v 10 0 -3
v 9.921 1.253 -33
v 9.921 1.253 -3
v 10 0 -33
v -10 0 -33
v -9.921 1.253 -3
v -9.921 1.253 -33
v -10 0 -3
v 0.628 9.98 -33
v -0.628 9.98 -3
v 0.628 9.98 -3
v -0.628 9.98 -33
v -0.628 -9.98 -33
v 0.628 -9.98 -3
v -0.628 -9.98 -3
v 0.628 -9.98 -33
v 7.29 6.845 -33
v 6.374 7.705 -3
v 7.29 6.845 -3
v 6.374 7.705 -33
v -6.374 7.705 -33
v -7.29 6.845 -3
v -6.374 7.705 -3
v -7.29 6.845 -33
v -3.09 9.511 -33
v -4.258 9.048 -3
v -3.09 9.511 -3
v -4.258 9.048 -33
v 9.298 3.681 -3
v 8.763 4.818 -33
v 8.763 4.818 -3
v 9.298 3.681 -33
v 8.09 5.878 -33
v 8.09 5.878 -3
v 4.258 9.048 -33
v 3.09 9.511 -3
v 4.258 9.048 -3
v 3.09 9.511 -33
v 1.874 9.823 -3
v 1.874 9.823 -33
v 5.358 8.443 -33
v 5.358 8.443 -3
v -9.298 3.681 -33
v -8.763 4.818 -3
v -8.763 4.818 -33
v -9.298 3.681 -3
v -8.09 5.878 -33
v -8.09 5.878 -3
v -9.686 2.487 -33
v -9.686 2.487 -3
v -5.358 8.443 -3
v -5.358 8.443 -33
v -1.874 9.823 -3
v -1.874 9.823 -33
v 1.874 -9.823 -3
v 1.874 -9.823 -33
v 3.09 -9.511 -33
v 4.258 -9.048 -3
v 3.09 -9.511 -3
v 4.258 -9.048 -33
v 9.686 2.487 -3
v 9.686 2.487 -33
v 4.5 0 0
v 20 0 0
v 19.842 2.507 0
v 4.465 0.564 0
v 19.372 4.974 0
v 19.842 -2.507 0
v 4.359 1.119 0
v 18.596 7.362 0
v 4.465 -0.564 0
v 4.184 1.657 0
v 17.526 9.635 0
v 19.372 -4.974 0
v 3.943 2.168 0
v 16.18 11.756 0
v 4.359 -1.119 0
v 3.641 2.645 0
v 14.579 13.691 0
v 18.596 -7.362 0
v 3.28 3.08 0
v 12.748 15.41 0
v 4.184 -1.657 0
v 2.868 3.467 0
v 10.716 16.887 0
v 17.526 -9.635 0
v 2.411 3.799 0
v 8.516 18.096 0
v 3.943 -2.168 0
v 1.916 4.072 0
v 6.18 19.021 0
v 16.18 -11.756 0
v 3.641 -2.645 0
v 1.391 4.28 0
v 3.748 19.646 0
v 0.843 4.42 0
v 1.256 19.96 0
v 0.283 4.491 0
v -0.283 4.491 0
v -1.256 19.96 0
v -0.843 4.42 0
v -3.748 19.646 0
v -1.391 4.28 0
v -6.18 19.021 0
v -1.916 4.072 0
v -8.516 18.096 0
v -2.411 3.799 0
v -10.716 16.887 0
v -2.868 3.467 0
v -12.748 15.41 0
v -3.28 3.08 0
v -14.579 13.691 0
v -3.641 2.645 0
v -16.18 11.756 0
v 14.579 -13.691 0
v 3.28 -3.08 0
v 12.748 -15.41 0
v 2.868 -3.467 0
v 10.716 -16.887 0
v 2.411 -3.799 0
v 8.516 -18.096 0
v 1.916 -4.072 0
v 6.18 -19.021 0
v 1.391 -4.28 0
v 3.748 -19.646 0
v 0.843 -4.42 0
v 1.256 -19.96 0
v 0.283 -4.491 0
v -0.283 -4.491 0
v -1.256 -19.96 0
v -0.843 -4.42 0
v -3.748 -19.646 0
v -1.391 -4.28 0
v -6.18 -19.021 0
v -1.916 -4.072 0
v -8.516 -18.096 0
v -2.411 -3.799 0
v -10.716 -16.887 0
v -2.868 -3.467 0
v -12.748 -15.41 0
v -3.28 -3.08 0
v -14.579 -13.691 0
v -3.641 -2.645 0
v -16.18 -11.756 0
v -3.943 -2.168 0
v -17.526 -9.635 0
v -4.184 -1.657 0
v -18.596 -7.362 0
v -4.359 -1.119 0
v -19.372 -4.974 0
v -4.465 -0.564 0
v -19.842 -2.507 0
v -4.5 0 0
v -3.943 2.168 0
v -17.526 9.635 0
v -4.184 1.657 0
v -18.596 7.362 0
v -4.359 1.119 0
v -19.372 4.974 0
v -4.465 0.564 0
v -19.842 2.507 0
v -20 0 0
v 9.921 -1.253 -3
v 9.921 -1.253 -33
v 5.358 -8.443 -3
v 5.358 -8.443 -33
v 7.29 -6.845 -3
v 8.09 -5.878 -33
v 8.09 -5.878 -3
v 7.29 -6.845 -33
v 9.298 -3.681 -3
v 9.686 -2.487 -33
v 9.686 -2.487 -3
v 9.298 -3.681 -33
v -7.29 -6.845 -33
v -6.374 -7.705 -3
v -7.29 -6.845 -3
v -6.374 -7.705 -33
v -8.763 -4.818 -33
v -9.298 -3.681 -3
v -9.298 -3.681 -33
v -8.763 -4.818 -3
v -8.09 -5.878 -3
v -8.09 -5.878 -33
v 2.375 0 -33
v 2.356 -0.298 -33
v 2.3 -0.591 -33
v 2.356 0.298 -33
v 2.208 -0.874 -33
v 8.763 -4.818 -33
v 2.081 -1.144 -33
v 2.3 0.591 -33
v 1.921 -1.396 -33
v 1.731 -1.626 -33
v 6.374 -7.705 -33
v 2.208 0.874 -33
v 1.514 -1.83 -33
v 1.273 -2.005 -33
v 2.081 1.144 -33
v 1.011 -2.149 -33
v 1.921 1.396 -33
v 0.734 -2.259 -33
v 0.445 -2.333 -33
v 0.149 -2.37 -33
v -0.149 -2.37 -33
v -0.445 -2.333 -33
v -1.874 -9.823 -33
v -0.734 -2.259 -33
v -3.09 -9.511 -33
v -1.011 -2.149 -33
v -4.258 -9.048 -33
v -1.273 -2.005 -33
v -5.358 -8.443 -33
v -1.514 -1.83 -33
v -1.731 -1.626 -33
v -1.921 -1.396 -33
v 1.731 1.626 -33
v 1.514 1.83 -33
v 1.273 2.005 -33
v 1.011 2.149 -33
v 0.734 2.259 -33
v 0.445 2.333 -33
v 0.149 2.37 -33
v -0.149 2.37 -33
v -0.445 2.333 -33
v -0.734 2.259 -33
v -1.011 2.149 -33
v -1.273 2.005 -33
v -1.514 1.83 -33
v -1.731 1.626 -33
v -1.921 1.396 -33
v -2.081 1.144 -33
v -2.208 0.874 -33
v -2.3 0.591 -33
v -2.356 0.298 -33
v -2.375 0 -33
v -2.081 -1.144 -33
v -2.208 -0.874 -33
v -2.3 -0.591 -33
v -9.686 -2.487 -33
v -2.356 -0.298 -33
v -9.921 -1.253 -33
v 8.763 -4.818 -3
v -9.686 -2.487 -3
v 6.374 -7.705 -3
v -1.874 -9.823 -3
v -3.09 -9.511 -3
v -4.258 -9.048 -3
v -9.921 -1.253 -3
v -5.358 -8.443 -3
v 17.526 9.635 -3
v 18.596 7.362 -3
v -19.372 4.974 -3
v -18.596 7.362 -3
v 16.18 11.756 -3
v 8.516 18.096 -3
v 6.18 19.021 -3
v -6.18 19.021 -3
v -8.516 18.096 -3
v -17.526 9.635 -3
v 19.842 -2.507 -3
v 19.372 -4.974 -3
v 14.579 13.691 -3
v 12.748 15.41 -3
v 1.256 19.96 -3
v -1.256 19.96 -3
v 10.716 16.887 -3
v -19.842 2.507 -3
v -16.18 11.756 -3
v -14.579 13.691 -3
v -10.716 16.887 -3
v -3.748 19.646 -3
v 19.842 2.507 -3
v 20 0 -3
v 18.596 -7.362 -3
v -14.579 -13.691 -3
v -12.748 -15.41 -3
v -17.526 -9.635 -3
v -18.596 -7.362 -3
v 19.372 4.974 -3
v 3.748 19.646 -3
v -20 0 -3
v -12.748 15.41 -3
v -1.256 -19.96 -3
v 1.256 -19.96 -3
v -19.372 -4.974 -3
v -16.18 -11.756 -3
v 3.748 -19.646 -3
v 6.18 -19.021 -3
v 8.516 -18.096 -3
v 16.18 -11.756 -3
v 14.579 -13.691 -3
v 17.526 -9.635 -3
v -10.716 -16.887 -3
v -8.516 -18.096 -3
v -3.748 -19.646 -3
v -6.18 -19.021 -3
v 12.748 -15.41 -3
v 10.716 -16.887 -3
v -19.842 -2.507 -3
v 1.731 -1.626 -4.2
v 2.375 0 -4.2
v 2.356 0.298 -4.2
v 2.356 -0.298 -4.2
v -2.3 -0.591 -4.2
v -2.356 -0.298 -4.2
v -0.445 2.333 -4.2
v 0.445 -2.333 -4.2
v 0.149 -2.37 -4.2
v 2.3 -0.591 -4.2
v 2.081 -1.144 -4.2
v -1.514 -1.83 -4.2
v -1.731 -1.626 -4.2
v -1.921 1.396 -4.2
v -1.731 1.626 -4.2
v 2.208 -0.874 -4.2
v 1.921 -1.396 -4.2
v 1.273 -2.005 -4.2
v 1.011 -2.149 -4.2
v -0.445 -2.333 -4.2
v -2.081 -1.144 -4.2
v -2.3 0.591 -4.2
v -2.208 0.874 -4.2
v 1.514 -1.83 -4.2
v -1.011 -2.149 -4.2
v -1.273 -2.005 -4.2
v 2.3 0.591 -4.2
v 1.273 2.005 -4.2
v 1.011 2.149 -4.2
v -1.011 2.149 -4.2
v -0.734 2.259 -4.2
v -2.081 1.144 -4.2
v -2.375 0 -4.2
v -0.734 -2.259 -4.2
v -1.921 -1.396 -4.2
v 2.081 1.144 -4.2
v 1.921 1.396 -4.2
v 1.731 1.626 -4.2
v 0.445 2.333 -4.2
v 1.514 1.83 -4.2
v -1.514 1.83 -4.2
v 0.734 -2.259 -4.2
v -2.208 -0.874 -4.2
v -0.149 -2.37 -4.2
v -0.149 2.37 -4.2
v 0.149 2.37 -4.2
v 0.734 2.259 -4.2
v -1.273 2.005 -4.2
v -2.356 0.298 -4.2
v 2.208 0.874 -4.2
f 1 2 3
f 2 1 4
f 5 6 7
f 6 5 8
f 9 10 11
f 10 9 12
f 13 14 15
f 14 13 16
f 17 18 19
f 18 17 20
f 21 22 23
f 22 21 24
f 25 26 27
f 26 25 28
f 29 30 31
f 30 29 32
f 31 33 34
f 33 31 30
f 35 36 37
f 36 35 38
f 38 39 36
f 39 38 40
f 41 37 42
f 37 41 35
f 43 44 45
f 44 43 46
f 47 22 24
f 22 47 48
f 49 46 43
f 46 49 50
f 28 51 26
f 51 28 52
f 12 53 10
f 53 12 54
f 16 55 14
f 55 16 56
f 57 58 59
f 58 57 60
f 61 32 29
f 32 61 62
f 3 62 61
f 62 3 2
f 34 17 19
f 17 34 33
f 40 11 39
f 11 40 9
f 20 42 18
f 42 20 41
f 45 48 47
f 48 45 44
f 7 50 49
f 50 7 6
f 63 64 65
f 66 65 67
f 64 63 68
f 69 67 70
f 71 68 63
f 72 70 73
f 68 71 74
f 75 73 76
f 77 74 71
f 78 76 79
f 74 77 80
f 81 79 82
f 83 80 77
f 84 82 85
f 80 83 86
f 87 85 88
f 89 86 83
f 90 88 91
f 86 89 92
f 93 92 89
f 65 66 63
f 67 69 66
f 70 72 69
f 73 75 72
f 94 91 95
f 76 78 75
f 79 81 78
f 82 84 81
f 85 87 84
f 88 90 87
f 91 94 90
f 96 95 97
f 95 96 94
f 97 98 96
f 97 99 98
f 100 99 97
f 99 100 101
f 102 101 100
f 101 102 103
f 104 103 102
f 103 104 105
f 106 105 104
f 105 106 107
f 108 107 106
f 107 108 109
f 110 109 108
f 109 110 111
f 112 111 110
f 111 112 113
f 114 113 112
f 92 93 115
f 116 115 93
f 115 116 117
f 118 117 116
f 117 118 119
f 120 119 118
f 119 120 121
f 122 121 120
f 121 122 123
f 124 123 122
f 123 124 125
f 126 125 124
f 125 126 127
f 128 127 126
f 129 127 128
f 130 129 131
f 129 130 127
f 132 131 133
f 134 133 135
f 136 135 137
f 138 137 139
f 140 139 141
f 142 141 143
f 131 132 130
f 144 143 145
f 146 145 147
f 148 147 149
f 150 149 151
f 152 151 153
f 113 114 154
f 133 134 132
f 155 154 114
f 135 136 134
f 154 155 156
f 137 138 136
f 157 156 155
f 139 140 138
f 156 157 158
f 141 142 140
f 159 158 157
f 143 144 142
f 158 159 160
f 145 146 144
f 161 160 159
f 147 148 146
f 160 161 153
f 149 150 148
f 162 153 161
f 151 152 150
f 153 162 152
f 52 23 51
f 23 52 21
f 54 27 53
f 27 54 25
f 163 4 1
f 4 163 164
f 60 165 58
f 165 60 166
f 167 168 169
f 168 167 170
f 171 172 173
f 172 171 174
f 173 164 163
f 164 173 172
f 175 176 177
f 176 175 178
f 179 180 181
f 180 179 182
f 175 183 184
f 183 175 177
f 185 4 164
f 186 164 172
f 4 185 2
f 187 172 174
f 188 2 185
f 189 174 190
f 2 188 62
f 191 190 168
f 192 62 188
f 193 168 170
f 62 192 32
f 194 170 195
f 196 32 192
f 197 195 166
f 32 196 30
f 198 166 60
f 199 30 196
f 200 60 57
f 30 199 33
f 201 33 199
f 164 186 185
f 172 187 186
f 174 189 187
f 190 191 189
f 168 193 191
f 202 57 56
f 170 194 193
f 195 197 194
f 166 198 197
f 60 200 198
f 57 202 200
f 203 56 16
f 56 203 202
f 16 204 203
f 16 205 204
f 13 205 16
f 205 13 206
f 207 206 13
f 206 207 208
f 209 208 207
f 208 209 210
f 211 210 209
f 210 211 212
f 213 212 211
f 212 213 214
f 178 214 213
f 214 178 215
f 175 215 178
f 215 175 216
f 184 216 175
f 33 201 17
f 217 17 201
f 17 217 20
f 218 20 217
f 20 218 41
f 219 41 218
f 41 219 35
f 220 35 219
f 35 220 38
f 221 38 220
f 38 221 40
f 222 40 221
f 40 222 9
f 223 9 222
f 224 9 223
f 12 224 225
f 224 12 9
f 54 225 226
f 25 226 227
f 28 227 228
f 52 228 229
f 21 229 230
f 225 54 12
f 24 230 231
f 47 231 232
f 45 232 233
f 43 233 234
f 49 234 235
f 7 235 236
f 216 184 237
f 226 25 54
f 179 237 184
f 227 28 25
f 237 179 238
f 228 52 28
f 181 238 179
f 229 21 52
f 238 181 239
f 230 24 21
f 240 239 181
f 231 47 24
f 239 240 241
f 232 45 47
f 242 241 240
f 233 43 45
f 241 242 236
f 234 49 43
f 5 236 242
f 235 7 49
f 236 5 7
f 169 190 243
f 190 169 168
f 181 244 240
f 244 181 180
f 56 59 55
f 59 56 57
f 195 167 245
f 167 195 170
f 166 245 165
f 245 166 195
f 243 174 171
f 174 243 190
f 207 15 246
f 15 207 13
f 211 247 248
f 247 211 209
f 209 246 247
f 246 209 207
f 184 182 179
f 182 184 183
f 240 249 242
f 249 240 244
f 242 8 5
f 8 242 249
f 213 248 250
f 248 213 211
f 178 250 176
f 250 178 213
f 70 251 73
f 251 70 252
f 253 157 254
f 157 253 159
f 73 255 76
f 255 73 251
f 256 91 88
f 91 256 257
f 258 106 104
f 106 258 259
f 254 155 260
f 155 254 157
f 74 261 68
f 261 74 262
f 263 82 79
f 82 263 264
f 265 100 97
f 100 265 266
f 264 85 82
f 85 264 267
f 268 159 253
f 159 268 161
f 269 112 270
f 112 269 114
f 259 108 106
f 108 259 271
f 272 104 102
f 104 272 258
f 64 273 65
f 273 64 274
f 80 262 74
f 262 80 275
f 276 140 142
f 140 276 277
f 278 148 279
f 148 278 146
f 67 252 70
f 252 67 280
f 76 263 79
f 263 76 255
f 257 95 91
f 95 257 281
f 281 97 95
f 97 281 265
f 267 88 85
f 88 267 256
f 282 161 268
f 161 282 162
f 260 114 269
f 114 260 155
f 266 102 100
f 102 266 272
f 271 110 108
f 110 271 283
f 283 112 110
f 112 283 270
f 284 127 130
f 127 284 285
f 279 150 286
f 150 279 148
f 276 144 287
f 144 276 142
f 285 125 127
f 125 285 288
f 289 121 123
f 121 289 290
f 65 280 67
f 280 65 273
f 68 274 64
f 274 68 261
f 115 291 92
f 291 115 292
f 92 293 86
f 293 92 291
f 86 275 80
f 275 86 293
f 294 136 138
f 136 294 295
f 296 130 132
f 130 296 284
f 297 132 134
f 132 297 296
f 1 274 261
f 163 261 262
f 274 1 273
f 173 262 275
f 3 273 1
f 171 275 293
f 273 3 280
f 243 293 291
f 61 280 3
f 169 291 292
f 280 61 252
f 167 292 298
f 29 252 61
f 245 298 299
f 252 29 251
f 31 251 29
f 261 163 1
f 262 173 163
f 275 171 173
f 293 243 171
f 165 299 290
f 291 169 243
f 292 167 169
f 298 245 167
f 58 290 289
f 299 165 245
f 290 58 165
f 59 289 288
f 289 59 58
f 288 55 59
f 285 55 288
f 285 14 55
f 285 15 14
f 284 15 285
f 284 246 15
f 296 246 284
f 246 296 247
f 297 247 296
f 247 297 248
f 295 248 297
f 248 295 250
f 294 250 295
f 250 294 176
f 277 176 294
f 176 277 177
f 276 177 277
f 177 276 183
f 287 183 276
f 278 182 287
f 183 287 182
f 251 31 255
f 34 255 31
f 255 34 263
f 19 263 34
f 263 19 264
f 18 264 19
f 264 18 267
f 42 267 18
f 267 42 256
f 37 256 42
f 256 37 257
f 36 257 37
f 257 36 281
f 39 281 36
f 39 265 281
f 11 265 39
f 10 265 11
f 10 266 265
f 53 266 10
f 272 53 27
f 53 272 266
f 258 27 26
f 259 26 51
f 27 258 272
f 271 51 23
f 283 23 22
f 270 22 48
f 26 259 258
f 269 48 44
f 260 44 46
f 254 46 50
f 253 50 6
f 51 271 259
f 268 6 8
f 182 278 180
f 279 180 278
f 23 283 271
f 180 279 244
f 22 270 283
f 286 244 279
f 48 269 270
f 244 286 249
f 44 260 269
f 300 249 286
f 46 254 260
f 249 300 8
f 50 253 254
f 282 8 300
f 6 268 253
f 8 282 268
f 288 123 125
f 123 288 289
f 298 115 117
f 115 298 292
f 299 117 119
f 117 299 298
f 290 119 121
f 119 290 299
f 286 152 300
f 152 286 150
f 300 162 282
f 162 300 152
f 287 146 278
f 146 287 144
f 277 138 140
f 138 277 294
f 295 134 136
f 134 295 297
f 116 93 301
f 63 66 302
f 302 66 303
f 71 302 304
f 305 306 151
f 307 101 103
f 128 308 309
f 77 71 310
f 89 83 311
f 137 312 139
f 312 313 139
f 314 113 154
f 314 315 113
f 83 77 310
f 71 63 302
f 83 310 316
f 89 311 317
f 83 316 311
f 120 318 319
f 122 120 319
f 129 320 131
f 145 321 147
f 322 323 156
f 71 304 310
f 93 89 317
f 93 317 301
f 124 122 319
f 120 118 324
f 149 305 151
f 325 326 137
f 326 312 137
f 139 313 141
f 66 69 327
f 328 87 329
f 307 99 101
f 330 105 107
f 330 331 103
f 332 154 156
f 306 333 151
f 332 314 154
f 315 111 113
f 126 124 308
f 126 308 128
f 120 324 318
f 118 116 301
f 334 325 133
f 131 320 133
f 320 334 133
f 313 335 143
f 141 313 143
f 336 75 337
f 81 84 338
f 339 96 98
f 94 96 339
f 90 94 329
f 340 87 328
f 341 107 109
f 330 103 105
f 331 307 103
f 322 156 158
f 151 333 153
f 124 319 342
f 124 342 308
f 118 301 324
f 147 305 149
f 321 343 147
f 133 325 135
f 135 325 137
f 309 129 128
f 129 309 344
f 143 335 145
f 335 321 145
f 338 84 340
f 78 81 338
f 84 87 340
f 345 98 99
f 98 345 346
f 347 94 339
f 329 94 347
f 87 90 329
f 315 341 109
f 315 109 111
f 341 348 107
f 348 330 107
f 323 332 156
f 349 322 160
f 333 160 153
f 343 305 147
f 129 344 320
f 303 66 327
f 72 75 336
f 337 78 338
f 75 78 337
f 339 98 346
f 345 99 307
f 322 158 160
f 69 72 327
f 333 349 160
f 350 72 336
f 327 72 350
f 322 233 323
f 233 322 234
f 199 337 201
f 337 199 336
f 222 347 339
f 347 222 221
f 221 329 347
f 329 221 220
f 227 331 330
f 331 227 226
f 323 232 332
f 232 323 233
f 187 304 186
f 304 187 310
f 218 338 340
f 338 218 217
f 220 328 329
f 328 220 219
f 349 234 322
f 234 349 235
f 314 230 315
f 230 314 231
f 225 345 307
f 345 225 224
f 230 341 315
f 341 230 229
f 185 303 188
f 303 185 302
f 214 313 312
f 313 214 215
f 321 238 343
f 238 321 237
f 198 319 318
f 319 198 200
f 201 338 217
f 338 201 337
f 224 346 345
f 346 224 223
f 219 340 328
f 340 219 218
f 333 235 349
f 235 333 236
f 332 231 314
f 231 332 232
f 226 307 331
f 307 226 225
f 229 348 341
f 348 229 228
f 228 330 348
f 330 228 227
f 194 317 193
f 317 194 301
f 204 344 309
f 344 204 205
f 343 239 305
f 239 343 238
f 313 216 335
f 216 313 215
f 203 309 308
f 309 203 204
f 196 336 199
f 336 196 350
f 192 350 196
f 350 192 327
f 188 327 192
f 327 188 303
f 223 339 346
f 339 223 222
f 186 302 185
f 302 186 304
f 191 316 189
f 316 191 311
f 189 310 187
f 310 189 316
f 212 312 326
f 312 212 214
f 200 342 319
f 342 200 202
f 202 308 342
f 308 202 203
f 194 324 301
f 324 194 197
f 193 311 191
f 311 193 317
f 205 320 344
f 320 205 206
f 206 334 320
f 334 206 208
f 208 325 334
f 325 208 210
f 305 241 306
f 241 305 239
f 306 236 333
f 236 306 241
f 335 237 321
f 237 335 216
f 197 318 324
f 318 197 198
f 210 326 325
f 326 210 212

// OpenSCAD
$fn = 50;


difference() {
	union() {
		translate(v = [0, 0, -33.0000000000]) {
			cylinder(h = 33, r = 10.0000000000);
		}
		translate(v = [0, 0, -3.0000000000]) {
			cylinder(h = 3, r = 20.0000000000);
		}
	}
	union() {
		translate(v = [0, 0, 0]) {
			rotate(a = [0, 0, 0]) {
				difference() {
					union() {
						#translate(v = [0, 0, -33.0000000000]) {
							cylinder(h = 33, r = 2.2500000000);
						}
						#translate(v = [0, 0, -4.2000000000]) {
							cylinder(h = 4.2000000000, r = 10.0000000000, r1 = 2.3750000000, r2 = 4.5000000000);
						}
						#translate(v = [0, 0, -33.0000000000]) {
							cylinder(h = 33, r = 2.3750000000);
						}
						#translate(v = [0, 0, -33.0000000000]) {
							cylinder(h = 33, r = 2.2500000000);
						}
					}
					union();
				}
			}
		}
	}
}
